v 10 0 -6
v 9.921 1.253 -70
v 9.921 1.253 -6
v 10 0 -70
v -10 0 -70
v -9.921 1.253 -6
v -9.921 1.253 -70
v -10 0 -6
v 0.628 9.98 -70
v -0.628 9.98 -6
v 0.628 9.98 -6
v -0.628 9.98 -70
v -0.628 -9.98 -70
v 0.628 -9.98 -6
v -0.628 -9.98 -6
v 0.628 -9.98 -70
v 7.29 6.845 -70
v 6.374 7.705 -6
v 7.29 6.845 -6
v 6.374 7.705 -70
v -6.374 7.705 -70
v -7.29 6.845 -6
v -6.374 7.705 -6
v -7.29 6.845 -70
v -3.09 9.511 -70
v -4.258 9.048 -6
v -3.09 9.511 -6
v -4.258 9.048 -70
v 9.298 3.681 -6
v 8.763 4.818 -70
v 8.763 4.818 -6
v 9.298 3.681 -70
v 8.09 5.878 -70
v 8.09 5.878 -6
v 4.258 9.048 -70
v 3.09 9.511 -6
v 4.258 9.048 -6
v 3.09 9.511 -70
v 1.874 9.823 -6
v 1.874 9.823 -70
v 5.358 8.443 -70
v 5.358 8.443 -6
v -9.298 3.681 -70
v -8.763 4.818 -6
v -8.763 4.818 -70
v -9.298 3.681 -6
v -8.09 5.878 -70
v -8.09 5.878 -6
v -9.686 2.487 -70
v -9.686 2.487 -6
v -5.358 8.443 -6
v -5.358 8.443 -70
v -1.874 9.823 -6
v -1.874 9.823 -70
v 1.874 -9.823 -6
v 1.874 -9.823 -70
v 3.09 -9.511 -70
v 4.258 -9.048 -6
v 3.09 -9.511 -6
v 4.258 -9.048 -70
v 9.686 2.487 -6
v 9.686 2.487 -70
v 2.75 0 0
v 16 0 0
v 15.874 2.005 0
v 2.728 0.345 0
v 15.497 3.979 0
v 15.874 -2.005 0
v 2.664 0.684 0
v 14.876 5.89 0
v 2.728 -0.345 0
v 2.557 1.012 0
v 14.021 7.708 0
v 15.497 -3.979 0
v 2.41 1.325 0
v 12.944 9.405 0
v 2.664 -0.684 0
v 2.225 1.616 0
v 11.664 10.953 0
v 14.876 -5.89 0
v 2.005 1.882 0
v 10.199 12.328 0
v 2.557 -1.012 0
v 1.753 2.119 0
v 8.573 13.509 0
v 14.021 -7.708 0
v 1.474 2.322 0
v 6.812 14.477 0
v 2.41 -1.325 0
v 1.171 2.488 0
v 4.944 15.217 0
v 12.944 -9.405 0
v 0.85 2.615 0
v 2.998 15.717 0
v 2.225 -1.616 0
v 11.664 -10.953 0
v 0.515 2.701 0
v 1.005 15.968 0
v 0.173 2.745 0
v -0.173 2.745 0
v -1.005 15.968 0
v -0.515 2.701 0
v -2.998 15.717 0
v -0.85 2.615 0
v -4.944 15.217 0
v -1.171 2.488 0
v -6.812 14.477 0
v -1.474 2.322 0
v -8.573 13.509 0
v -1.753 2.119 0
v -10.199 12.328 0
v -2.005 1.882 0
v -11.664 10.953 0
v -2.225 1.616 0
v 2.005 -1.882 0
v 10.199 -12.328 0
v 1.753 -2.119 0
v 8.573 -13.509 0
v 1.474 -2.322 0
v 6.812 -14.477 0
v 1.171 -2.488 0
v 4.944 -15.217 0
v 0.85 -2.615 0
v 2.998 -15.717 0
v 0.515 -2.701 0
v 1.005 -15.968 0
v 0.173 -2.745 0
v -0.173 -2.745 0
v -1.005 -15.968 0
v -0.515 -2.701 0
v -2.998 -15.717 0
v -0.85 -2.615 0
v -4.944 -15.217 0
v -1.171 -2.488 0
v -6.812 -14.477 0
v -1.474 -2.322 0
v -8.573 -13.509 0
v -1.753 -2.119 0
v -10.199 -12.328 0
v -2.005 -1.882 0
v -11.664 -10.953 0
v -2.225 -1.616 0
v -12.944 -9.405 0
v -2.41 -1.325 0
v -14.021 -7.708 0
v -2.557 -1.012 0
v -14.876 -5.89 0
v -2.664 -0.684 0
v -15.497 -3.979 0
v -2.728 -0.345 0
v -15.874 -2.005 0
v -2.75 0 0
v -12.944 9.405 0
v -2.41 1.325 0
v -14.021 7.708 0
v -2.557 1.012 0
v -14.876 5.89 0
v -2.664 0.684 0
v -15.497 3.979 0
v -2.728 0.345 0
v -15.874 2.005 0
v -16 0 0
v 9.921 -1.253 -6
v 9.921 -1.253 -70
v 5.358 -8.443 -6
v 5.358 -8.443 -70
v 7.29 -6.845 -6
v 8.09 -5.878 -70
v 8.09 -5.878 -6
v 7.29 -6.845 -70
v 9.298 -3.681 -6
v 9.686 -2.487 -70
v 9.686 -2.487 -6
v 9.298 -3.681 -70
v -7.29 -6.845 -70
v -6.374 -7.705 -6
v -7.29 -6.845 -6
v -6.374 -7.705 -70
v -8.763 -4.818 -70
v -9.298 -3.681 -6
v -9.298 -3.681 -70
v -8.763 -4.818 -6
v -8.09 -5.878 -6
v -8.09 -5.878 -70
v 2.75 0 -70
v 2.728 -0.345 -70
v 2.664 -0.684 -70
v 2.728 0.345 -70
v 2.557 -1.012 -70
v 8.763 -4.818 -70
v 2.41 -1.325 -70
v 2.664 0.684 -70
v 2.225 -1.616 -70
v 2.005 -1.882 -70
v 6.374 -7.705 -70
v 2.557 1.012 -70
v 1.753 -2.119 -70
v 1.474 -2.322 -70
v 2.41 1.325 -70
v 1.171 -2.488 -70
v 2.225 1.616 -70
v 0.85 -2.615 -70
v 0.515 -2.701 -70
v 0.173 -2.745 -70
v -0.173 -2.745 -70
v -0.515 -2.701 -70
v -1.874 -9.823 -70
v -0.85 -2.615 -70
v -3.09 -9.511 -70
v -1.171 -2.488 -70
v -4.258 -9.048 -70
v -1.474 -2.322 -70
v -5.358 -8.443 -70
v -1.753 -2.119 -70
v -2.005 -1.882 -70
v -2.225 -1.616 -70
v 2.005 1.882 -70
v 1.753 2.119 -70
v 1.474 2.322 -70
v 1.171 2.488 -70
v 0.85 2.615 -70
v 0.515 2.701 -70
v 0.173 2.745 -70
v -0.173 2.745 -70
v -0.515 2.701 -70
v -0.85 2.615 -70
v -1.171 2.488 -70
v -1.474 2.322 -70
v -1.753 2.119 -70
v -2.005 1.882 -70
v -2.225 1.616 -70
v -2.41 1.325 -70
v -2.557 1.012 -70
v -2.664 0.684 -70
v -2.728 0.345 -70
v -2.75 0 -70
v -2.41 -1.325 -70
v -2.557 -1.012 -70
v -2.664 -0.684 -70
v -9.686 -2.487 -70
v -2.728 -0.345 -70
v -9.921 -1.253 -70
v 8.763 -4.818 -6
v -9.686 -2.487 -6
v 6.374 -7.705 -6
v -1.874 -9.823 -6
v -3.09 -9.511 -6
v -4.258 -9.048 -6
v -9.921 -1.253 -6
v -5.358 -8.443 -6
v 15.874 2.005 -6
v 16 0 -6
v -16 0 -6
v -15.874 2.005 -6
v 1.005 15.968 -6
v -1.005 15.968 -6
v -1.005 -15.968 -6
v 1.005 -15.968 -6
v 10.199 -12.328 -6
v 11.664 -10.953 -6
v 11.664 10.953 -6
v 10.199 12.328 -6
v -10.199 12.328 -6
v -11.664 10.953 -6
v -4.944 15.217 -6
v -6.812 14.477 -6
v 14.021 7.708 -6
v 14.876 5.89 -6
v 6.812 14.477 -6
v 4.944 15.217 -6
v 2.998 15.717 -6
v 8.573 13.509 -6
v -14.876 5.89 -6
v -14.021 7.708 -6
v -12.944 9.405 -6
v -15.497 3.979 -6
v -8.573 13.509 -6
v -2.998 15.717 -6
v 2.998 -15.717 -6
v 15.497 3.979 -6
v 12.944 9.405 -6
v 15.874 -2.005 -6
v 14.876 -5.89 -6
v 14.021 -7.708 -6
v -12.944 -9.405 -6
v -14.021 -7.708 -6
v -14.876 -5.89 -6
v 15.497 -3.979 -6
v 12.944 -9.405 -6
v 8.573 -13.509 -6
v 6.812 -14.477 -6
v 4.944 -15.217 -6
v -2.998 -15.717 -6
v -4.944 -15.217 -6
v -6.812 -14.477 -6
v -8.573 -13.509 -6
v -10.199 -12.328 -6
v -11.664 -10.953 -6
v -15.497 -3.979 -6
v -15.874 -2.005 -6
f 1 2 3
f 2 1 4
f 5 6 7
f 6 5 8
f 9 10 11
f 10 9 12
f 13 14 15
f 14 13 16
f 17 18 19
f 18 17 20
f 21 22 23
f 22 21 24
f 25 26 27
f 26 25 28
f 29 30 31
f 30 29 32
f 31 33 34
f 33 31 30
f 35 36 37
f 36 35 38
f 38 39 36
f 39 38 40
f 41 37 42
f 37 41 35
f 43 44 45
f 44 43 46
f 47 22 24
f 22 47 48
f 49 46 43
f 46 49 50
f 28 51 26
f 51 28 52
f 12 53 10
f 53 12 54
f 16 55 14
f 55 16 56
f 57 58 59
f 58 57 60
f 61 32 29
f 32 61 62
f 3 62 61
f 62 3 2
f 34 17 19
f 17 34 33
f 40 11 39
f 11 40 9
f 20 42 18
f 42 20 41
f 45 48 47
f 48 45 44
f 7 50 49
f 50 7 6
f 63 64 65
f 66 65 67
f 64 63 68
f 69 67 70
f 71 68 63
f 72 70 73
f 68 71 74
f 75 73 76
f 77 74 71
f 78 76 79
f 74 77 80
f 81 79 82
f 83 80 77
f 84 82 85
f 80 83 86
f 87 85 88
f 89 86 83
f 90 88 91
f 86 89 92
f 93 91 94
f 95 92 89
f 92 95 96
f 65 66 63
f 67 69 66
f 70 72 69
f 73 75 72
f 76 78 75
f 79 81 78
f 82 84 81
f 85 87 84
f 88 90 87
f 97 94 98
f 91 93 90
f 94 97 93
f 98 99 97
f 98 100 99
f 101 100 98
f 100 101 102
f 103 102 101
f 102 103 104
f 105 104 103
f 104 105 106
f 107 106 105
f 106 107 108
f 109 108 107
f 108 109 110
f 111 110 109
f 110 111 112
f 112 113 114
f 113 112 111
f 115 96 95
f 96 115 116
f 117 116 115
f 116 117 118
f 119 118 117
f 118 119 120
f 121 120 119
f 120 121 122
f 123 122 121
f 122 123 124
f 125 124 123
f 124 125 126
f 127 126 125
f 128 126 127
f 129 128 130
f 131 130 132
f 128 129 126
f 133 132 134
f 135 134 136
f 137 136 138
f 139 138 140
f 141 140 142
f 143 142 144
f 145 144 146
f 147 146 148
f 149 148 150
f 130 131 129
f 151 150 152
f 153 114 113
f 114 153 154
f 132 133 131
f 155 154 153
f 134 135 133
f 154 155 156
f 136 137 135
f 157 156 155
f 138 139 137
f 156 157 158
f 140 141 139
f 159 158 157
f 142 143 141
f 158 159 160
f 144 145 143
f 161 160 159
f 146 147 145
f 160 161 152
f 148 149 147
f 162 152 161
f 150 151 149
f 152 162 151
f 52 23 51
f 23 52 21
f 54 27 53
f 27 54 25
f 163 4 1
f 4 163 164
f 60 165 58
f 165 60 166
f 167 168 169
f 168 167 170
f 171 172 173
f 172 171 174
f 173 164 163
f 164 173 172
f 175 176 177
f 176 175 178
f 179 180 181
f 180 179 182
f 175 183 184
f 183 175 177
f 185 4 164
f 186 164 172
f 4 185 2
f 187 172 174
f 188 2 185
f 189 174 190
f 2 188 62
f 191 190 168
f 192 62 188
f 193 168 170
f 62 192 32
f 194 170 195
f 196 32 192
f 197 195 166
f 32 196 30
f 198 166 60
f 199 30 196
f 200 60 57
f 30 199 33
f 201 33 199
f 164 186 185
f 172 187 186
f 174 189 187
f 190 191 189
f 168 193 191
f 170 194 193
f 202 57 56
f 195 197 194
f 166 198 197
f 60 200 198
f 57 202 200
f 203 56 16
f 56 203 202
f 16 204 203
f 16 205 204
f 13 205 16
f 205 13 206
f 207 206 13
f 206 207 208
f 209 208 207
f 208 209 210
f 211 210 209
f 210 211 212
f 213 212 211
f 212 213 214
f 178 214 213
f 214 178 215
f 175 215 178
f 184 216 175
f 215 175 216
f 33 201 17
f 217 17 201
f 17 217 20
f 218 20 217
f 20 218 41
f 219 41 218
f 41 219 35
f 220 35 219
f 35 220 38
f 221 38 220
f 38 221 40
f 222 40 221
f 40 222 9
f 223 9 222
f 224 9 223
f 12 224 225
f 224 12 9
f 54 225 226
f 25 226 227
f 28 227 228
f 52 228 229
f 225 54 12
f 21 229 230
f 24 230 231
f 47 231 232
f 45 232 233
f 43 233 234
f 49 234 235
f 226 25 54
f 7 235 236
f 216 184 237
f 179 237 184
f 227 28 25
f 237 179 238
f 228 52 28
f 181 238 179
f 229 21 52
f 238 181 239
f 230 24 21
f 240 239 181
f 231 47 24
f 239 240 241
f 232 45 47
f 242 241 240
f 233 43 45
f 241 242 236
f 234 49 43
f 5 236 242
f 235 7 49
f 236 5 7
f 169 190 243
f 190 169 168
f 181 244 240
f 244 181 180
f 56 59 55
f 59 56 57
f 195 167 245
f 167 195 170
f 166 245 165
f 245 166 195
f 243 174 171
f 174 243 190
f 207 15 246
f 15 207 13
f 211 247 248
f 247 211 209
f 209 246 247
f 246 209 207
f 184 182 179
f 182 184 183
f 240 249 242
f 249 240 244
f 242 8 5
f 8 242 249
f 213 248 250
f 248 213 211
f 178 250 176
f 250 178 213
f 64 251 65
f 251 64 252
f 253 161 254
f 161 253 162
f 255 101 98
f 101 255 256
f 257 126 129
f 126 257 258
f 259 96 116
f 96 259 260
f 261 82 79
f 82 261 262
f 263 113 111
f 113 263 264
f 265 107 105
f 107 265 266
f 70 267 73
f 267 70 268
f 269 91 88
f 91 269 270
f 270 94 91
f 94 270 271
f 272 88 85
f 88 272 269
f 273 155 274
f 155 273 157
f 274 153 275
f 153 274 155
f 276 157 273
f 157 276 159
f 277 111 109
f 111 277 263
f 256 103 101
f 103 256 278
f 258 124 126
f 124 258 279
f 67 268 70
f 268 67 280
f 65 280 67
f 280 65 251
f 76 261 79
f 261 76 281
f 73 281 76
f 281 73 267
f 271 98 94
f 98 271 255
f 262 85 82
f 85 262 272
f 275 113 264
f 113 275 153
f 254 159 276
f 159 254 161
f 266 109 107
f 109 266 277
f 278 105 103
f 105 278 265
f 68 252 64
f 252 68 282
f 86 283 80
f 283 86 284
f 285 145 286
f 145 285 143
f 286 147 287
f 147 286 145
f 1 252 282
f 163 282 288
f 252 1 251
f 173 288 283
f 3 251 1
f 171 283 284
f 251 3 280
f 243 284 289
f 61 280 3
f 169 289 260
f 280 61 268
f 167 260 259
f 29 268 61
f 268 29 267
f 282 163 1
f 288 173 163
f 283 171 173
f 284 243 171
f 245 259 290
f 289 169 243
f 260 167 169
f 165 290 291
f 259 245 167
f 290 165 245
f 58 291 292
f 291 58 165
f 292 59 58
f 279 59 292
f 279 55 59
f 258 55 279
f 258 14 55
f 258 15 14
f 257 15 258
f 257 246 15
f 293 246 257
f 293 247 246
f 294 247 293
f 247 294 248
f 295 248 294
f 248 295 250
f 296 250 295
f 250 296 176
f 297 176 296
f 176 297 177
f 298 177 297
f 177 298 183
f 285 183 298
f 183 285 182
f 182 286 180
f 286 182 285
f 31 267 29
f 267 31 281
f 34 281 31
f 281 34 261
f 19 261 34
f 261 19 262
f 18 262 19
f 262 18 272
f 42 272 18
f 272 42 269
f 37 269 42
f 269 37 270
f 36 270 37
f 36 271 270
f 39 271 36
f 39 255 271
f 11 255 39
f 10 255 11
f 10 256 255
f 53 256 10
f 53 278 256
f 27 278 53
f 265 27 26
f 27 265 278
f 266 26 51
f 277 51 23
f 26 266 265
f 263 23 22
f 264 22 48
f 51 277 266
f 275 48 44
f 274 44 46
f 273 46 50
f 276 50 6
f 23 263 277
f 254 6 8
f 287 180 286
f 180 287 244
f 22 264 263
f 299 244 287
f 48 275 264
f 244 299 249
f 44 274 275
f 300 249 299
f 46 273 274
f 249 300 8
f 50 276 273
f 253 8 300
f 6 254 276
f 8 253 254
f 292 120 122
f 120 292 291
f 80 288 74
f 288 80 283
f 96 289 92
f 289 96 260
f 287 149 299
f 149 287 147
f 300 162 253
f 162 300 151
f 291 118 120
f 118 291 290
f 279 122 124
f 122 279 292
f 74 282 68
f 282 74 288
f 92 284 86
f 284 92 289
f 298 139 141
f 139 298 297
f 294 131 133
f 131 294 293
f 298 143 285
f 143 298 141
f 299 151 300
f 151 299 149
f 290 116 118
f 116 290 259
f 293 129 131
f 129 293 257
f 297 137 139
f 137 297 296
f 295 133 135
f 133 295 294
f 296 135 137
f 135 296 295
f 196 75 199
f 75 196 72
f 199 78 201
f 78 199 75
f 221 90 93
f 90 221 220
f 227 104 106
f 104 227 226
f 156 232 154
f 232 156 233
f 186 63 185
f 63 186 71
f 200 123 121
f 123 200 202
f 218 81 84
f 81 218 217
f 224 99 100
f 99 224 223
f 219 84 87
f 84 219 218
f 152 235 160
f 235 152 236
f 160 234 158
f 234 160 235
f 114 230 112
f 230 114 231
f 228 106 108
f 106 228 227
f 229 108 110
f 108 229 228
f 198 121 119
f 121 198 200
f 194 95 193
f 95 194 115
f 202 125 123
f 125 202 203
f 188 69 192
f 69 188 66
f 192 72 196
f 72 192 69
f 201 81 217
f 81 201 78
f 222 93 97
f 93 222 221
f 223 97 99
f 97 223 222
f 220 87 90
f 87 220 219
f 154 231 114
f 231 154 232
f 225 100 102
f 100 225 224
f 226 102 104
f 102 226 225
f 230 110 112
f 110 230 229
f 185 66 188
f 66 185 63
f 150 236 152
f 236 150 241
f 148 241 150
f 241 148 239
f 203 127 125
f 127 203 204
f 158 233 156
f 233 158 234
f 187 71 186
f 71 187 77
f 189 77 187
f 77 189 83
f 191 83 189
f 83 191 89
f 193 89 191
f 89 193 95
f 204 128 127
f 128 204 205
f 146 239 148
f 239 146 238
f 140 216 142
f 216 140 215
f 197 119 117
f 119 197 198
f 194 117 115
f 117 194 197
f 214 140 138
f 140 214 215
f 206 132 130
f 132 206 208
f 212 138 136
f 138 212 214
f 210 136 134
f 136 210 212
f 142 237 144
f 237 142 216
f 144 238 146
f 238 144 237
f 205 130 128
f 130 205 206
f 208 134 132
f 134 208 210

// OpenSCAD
$fn = 50;


difference() {
	union() {
		translate(v = [0, 0, -70.0000000000]) {
			cylinder(h = 70, r = 10.0000000000);
		}
		translate(v = [0, 0, -6.0000000000]) {
			cylinder(h = 6, r = 16.0000000000);
		}
	}
	union() {
		#translate(v = [0, 0, -70]) {
			cylinder(h = 70, r = 2.7500000000);
		}
	}
}
